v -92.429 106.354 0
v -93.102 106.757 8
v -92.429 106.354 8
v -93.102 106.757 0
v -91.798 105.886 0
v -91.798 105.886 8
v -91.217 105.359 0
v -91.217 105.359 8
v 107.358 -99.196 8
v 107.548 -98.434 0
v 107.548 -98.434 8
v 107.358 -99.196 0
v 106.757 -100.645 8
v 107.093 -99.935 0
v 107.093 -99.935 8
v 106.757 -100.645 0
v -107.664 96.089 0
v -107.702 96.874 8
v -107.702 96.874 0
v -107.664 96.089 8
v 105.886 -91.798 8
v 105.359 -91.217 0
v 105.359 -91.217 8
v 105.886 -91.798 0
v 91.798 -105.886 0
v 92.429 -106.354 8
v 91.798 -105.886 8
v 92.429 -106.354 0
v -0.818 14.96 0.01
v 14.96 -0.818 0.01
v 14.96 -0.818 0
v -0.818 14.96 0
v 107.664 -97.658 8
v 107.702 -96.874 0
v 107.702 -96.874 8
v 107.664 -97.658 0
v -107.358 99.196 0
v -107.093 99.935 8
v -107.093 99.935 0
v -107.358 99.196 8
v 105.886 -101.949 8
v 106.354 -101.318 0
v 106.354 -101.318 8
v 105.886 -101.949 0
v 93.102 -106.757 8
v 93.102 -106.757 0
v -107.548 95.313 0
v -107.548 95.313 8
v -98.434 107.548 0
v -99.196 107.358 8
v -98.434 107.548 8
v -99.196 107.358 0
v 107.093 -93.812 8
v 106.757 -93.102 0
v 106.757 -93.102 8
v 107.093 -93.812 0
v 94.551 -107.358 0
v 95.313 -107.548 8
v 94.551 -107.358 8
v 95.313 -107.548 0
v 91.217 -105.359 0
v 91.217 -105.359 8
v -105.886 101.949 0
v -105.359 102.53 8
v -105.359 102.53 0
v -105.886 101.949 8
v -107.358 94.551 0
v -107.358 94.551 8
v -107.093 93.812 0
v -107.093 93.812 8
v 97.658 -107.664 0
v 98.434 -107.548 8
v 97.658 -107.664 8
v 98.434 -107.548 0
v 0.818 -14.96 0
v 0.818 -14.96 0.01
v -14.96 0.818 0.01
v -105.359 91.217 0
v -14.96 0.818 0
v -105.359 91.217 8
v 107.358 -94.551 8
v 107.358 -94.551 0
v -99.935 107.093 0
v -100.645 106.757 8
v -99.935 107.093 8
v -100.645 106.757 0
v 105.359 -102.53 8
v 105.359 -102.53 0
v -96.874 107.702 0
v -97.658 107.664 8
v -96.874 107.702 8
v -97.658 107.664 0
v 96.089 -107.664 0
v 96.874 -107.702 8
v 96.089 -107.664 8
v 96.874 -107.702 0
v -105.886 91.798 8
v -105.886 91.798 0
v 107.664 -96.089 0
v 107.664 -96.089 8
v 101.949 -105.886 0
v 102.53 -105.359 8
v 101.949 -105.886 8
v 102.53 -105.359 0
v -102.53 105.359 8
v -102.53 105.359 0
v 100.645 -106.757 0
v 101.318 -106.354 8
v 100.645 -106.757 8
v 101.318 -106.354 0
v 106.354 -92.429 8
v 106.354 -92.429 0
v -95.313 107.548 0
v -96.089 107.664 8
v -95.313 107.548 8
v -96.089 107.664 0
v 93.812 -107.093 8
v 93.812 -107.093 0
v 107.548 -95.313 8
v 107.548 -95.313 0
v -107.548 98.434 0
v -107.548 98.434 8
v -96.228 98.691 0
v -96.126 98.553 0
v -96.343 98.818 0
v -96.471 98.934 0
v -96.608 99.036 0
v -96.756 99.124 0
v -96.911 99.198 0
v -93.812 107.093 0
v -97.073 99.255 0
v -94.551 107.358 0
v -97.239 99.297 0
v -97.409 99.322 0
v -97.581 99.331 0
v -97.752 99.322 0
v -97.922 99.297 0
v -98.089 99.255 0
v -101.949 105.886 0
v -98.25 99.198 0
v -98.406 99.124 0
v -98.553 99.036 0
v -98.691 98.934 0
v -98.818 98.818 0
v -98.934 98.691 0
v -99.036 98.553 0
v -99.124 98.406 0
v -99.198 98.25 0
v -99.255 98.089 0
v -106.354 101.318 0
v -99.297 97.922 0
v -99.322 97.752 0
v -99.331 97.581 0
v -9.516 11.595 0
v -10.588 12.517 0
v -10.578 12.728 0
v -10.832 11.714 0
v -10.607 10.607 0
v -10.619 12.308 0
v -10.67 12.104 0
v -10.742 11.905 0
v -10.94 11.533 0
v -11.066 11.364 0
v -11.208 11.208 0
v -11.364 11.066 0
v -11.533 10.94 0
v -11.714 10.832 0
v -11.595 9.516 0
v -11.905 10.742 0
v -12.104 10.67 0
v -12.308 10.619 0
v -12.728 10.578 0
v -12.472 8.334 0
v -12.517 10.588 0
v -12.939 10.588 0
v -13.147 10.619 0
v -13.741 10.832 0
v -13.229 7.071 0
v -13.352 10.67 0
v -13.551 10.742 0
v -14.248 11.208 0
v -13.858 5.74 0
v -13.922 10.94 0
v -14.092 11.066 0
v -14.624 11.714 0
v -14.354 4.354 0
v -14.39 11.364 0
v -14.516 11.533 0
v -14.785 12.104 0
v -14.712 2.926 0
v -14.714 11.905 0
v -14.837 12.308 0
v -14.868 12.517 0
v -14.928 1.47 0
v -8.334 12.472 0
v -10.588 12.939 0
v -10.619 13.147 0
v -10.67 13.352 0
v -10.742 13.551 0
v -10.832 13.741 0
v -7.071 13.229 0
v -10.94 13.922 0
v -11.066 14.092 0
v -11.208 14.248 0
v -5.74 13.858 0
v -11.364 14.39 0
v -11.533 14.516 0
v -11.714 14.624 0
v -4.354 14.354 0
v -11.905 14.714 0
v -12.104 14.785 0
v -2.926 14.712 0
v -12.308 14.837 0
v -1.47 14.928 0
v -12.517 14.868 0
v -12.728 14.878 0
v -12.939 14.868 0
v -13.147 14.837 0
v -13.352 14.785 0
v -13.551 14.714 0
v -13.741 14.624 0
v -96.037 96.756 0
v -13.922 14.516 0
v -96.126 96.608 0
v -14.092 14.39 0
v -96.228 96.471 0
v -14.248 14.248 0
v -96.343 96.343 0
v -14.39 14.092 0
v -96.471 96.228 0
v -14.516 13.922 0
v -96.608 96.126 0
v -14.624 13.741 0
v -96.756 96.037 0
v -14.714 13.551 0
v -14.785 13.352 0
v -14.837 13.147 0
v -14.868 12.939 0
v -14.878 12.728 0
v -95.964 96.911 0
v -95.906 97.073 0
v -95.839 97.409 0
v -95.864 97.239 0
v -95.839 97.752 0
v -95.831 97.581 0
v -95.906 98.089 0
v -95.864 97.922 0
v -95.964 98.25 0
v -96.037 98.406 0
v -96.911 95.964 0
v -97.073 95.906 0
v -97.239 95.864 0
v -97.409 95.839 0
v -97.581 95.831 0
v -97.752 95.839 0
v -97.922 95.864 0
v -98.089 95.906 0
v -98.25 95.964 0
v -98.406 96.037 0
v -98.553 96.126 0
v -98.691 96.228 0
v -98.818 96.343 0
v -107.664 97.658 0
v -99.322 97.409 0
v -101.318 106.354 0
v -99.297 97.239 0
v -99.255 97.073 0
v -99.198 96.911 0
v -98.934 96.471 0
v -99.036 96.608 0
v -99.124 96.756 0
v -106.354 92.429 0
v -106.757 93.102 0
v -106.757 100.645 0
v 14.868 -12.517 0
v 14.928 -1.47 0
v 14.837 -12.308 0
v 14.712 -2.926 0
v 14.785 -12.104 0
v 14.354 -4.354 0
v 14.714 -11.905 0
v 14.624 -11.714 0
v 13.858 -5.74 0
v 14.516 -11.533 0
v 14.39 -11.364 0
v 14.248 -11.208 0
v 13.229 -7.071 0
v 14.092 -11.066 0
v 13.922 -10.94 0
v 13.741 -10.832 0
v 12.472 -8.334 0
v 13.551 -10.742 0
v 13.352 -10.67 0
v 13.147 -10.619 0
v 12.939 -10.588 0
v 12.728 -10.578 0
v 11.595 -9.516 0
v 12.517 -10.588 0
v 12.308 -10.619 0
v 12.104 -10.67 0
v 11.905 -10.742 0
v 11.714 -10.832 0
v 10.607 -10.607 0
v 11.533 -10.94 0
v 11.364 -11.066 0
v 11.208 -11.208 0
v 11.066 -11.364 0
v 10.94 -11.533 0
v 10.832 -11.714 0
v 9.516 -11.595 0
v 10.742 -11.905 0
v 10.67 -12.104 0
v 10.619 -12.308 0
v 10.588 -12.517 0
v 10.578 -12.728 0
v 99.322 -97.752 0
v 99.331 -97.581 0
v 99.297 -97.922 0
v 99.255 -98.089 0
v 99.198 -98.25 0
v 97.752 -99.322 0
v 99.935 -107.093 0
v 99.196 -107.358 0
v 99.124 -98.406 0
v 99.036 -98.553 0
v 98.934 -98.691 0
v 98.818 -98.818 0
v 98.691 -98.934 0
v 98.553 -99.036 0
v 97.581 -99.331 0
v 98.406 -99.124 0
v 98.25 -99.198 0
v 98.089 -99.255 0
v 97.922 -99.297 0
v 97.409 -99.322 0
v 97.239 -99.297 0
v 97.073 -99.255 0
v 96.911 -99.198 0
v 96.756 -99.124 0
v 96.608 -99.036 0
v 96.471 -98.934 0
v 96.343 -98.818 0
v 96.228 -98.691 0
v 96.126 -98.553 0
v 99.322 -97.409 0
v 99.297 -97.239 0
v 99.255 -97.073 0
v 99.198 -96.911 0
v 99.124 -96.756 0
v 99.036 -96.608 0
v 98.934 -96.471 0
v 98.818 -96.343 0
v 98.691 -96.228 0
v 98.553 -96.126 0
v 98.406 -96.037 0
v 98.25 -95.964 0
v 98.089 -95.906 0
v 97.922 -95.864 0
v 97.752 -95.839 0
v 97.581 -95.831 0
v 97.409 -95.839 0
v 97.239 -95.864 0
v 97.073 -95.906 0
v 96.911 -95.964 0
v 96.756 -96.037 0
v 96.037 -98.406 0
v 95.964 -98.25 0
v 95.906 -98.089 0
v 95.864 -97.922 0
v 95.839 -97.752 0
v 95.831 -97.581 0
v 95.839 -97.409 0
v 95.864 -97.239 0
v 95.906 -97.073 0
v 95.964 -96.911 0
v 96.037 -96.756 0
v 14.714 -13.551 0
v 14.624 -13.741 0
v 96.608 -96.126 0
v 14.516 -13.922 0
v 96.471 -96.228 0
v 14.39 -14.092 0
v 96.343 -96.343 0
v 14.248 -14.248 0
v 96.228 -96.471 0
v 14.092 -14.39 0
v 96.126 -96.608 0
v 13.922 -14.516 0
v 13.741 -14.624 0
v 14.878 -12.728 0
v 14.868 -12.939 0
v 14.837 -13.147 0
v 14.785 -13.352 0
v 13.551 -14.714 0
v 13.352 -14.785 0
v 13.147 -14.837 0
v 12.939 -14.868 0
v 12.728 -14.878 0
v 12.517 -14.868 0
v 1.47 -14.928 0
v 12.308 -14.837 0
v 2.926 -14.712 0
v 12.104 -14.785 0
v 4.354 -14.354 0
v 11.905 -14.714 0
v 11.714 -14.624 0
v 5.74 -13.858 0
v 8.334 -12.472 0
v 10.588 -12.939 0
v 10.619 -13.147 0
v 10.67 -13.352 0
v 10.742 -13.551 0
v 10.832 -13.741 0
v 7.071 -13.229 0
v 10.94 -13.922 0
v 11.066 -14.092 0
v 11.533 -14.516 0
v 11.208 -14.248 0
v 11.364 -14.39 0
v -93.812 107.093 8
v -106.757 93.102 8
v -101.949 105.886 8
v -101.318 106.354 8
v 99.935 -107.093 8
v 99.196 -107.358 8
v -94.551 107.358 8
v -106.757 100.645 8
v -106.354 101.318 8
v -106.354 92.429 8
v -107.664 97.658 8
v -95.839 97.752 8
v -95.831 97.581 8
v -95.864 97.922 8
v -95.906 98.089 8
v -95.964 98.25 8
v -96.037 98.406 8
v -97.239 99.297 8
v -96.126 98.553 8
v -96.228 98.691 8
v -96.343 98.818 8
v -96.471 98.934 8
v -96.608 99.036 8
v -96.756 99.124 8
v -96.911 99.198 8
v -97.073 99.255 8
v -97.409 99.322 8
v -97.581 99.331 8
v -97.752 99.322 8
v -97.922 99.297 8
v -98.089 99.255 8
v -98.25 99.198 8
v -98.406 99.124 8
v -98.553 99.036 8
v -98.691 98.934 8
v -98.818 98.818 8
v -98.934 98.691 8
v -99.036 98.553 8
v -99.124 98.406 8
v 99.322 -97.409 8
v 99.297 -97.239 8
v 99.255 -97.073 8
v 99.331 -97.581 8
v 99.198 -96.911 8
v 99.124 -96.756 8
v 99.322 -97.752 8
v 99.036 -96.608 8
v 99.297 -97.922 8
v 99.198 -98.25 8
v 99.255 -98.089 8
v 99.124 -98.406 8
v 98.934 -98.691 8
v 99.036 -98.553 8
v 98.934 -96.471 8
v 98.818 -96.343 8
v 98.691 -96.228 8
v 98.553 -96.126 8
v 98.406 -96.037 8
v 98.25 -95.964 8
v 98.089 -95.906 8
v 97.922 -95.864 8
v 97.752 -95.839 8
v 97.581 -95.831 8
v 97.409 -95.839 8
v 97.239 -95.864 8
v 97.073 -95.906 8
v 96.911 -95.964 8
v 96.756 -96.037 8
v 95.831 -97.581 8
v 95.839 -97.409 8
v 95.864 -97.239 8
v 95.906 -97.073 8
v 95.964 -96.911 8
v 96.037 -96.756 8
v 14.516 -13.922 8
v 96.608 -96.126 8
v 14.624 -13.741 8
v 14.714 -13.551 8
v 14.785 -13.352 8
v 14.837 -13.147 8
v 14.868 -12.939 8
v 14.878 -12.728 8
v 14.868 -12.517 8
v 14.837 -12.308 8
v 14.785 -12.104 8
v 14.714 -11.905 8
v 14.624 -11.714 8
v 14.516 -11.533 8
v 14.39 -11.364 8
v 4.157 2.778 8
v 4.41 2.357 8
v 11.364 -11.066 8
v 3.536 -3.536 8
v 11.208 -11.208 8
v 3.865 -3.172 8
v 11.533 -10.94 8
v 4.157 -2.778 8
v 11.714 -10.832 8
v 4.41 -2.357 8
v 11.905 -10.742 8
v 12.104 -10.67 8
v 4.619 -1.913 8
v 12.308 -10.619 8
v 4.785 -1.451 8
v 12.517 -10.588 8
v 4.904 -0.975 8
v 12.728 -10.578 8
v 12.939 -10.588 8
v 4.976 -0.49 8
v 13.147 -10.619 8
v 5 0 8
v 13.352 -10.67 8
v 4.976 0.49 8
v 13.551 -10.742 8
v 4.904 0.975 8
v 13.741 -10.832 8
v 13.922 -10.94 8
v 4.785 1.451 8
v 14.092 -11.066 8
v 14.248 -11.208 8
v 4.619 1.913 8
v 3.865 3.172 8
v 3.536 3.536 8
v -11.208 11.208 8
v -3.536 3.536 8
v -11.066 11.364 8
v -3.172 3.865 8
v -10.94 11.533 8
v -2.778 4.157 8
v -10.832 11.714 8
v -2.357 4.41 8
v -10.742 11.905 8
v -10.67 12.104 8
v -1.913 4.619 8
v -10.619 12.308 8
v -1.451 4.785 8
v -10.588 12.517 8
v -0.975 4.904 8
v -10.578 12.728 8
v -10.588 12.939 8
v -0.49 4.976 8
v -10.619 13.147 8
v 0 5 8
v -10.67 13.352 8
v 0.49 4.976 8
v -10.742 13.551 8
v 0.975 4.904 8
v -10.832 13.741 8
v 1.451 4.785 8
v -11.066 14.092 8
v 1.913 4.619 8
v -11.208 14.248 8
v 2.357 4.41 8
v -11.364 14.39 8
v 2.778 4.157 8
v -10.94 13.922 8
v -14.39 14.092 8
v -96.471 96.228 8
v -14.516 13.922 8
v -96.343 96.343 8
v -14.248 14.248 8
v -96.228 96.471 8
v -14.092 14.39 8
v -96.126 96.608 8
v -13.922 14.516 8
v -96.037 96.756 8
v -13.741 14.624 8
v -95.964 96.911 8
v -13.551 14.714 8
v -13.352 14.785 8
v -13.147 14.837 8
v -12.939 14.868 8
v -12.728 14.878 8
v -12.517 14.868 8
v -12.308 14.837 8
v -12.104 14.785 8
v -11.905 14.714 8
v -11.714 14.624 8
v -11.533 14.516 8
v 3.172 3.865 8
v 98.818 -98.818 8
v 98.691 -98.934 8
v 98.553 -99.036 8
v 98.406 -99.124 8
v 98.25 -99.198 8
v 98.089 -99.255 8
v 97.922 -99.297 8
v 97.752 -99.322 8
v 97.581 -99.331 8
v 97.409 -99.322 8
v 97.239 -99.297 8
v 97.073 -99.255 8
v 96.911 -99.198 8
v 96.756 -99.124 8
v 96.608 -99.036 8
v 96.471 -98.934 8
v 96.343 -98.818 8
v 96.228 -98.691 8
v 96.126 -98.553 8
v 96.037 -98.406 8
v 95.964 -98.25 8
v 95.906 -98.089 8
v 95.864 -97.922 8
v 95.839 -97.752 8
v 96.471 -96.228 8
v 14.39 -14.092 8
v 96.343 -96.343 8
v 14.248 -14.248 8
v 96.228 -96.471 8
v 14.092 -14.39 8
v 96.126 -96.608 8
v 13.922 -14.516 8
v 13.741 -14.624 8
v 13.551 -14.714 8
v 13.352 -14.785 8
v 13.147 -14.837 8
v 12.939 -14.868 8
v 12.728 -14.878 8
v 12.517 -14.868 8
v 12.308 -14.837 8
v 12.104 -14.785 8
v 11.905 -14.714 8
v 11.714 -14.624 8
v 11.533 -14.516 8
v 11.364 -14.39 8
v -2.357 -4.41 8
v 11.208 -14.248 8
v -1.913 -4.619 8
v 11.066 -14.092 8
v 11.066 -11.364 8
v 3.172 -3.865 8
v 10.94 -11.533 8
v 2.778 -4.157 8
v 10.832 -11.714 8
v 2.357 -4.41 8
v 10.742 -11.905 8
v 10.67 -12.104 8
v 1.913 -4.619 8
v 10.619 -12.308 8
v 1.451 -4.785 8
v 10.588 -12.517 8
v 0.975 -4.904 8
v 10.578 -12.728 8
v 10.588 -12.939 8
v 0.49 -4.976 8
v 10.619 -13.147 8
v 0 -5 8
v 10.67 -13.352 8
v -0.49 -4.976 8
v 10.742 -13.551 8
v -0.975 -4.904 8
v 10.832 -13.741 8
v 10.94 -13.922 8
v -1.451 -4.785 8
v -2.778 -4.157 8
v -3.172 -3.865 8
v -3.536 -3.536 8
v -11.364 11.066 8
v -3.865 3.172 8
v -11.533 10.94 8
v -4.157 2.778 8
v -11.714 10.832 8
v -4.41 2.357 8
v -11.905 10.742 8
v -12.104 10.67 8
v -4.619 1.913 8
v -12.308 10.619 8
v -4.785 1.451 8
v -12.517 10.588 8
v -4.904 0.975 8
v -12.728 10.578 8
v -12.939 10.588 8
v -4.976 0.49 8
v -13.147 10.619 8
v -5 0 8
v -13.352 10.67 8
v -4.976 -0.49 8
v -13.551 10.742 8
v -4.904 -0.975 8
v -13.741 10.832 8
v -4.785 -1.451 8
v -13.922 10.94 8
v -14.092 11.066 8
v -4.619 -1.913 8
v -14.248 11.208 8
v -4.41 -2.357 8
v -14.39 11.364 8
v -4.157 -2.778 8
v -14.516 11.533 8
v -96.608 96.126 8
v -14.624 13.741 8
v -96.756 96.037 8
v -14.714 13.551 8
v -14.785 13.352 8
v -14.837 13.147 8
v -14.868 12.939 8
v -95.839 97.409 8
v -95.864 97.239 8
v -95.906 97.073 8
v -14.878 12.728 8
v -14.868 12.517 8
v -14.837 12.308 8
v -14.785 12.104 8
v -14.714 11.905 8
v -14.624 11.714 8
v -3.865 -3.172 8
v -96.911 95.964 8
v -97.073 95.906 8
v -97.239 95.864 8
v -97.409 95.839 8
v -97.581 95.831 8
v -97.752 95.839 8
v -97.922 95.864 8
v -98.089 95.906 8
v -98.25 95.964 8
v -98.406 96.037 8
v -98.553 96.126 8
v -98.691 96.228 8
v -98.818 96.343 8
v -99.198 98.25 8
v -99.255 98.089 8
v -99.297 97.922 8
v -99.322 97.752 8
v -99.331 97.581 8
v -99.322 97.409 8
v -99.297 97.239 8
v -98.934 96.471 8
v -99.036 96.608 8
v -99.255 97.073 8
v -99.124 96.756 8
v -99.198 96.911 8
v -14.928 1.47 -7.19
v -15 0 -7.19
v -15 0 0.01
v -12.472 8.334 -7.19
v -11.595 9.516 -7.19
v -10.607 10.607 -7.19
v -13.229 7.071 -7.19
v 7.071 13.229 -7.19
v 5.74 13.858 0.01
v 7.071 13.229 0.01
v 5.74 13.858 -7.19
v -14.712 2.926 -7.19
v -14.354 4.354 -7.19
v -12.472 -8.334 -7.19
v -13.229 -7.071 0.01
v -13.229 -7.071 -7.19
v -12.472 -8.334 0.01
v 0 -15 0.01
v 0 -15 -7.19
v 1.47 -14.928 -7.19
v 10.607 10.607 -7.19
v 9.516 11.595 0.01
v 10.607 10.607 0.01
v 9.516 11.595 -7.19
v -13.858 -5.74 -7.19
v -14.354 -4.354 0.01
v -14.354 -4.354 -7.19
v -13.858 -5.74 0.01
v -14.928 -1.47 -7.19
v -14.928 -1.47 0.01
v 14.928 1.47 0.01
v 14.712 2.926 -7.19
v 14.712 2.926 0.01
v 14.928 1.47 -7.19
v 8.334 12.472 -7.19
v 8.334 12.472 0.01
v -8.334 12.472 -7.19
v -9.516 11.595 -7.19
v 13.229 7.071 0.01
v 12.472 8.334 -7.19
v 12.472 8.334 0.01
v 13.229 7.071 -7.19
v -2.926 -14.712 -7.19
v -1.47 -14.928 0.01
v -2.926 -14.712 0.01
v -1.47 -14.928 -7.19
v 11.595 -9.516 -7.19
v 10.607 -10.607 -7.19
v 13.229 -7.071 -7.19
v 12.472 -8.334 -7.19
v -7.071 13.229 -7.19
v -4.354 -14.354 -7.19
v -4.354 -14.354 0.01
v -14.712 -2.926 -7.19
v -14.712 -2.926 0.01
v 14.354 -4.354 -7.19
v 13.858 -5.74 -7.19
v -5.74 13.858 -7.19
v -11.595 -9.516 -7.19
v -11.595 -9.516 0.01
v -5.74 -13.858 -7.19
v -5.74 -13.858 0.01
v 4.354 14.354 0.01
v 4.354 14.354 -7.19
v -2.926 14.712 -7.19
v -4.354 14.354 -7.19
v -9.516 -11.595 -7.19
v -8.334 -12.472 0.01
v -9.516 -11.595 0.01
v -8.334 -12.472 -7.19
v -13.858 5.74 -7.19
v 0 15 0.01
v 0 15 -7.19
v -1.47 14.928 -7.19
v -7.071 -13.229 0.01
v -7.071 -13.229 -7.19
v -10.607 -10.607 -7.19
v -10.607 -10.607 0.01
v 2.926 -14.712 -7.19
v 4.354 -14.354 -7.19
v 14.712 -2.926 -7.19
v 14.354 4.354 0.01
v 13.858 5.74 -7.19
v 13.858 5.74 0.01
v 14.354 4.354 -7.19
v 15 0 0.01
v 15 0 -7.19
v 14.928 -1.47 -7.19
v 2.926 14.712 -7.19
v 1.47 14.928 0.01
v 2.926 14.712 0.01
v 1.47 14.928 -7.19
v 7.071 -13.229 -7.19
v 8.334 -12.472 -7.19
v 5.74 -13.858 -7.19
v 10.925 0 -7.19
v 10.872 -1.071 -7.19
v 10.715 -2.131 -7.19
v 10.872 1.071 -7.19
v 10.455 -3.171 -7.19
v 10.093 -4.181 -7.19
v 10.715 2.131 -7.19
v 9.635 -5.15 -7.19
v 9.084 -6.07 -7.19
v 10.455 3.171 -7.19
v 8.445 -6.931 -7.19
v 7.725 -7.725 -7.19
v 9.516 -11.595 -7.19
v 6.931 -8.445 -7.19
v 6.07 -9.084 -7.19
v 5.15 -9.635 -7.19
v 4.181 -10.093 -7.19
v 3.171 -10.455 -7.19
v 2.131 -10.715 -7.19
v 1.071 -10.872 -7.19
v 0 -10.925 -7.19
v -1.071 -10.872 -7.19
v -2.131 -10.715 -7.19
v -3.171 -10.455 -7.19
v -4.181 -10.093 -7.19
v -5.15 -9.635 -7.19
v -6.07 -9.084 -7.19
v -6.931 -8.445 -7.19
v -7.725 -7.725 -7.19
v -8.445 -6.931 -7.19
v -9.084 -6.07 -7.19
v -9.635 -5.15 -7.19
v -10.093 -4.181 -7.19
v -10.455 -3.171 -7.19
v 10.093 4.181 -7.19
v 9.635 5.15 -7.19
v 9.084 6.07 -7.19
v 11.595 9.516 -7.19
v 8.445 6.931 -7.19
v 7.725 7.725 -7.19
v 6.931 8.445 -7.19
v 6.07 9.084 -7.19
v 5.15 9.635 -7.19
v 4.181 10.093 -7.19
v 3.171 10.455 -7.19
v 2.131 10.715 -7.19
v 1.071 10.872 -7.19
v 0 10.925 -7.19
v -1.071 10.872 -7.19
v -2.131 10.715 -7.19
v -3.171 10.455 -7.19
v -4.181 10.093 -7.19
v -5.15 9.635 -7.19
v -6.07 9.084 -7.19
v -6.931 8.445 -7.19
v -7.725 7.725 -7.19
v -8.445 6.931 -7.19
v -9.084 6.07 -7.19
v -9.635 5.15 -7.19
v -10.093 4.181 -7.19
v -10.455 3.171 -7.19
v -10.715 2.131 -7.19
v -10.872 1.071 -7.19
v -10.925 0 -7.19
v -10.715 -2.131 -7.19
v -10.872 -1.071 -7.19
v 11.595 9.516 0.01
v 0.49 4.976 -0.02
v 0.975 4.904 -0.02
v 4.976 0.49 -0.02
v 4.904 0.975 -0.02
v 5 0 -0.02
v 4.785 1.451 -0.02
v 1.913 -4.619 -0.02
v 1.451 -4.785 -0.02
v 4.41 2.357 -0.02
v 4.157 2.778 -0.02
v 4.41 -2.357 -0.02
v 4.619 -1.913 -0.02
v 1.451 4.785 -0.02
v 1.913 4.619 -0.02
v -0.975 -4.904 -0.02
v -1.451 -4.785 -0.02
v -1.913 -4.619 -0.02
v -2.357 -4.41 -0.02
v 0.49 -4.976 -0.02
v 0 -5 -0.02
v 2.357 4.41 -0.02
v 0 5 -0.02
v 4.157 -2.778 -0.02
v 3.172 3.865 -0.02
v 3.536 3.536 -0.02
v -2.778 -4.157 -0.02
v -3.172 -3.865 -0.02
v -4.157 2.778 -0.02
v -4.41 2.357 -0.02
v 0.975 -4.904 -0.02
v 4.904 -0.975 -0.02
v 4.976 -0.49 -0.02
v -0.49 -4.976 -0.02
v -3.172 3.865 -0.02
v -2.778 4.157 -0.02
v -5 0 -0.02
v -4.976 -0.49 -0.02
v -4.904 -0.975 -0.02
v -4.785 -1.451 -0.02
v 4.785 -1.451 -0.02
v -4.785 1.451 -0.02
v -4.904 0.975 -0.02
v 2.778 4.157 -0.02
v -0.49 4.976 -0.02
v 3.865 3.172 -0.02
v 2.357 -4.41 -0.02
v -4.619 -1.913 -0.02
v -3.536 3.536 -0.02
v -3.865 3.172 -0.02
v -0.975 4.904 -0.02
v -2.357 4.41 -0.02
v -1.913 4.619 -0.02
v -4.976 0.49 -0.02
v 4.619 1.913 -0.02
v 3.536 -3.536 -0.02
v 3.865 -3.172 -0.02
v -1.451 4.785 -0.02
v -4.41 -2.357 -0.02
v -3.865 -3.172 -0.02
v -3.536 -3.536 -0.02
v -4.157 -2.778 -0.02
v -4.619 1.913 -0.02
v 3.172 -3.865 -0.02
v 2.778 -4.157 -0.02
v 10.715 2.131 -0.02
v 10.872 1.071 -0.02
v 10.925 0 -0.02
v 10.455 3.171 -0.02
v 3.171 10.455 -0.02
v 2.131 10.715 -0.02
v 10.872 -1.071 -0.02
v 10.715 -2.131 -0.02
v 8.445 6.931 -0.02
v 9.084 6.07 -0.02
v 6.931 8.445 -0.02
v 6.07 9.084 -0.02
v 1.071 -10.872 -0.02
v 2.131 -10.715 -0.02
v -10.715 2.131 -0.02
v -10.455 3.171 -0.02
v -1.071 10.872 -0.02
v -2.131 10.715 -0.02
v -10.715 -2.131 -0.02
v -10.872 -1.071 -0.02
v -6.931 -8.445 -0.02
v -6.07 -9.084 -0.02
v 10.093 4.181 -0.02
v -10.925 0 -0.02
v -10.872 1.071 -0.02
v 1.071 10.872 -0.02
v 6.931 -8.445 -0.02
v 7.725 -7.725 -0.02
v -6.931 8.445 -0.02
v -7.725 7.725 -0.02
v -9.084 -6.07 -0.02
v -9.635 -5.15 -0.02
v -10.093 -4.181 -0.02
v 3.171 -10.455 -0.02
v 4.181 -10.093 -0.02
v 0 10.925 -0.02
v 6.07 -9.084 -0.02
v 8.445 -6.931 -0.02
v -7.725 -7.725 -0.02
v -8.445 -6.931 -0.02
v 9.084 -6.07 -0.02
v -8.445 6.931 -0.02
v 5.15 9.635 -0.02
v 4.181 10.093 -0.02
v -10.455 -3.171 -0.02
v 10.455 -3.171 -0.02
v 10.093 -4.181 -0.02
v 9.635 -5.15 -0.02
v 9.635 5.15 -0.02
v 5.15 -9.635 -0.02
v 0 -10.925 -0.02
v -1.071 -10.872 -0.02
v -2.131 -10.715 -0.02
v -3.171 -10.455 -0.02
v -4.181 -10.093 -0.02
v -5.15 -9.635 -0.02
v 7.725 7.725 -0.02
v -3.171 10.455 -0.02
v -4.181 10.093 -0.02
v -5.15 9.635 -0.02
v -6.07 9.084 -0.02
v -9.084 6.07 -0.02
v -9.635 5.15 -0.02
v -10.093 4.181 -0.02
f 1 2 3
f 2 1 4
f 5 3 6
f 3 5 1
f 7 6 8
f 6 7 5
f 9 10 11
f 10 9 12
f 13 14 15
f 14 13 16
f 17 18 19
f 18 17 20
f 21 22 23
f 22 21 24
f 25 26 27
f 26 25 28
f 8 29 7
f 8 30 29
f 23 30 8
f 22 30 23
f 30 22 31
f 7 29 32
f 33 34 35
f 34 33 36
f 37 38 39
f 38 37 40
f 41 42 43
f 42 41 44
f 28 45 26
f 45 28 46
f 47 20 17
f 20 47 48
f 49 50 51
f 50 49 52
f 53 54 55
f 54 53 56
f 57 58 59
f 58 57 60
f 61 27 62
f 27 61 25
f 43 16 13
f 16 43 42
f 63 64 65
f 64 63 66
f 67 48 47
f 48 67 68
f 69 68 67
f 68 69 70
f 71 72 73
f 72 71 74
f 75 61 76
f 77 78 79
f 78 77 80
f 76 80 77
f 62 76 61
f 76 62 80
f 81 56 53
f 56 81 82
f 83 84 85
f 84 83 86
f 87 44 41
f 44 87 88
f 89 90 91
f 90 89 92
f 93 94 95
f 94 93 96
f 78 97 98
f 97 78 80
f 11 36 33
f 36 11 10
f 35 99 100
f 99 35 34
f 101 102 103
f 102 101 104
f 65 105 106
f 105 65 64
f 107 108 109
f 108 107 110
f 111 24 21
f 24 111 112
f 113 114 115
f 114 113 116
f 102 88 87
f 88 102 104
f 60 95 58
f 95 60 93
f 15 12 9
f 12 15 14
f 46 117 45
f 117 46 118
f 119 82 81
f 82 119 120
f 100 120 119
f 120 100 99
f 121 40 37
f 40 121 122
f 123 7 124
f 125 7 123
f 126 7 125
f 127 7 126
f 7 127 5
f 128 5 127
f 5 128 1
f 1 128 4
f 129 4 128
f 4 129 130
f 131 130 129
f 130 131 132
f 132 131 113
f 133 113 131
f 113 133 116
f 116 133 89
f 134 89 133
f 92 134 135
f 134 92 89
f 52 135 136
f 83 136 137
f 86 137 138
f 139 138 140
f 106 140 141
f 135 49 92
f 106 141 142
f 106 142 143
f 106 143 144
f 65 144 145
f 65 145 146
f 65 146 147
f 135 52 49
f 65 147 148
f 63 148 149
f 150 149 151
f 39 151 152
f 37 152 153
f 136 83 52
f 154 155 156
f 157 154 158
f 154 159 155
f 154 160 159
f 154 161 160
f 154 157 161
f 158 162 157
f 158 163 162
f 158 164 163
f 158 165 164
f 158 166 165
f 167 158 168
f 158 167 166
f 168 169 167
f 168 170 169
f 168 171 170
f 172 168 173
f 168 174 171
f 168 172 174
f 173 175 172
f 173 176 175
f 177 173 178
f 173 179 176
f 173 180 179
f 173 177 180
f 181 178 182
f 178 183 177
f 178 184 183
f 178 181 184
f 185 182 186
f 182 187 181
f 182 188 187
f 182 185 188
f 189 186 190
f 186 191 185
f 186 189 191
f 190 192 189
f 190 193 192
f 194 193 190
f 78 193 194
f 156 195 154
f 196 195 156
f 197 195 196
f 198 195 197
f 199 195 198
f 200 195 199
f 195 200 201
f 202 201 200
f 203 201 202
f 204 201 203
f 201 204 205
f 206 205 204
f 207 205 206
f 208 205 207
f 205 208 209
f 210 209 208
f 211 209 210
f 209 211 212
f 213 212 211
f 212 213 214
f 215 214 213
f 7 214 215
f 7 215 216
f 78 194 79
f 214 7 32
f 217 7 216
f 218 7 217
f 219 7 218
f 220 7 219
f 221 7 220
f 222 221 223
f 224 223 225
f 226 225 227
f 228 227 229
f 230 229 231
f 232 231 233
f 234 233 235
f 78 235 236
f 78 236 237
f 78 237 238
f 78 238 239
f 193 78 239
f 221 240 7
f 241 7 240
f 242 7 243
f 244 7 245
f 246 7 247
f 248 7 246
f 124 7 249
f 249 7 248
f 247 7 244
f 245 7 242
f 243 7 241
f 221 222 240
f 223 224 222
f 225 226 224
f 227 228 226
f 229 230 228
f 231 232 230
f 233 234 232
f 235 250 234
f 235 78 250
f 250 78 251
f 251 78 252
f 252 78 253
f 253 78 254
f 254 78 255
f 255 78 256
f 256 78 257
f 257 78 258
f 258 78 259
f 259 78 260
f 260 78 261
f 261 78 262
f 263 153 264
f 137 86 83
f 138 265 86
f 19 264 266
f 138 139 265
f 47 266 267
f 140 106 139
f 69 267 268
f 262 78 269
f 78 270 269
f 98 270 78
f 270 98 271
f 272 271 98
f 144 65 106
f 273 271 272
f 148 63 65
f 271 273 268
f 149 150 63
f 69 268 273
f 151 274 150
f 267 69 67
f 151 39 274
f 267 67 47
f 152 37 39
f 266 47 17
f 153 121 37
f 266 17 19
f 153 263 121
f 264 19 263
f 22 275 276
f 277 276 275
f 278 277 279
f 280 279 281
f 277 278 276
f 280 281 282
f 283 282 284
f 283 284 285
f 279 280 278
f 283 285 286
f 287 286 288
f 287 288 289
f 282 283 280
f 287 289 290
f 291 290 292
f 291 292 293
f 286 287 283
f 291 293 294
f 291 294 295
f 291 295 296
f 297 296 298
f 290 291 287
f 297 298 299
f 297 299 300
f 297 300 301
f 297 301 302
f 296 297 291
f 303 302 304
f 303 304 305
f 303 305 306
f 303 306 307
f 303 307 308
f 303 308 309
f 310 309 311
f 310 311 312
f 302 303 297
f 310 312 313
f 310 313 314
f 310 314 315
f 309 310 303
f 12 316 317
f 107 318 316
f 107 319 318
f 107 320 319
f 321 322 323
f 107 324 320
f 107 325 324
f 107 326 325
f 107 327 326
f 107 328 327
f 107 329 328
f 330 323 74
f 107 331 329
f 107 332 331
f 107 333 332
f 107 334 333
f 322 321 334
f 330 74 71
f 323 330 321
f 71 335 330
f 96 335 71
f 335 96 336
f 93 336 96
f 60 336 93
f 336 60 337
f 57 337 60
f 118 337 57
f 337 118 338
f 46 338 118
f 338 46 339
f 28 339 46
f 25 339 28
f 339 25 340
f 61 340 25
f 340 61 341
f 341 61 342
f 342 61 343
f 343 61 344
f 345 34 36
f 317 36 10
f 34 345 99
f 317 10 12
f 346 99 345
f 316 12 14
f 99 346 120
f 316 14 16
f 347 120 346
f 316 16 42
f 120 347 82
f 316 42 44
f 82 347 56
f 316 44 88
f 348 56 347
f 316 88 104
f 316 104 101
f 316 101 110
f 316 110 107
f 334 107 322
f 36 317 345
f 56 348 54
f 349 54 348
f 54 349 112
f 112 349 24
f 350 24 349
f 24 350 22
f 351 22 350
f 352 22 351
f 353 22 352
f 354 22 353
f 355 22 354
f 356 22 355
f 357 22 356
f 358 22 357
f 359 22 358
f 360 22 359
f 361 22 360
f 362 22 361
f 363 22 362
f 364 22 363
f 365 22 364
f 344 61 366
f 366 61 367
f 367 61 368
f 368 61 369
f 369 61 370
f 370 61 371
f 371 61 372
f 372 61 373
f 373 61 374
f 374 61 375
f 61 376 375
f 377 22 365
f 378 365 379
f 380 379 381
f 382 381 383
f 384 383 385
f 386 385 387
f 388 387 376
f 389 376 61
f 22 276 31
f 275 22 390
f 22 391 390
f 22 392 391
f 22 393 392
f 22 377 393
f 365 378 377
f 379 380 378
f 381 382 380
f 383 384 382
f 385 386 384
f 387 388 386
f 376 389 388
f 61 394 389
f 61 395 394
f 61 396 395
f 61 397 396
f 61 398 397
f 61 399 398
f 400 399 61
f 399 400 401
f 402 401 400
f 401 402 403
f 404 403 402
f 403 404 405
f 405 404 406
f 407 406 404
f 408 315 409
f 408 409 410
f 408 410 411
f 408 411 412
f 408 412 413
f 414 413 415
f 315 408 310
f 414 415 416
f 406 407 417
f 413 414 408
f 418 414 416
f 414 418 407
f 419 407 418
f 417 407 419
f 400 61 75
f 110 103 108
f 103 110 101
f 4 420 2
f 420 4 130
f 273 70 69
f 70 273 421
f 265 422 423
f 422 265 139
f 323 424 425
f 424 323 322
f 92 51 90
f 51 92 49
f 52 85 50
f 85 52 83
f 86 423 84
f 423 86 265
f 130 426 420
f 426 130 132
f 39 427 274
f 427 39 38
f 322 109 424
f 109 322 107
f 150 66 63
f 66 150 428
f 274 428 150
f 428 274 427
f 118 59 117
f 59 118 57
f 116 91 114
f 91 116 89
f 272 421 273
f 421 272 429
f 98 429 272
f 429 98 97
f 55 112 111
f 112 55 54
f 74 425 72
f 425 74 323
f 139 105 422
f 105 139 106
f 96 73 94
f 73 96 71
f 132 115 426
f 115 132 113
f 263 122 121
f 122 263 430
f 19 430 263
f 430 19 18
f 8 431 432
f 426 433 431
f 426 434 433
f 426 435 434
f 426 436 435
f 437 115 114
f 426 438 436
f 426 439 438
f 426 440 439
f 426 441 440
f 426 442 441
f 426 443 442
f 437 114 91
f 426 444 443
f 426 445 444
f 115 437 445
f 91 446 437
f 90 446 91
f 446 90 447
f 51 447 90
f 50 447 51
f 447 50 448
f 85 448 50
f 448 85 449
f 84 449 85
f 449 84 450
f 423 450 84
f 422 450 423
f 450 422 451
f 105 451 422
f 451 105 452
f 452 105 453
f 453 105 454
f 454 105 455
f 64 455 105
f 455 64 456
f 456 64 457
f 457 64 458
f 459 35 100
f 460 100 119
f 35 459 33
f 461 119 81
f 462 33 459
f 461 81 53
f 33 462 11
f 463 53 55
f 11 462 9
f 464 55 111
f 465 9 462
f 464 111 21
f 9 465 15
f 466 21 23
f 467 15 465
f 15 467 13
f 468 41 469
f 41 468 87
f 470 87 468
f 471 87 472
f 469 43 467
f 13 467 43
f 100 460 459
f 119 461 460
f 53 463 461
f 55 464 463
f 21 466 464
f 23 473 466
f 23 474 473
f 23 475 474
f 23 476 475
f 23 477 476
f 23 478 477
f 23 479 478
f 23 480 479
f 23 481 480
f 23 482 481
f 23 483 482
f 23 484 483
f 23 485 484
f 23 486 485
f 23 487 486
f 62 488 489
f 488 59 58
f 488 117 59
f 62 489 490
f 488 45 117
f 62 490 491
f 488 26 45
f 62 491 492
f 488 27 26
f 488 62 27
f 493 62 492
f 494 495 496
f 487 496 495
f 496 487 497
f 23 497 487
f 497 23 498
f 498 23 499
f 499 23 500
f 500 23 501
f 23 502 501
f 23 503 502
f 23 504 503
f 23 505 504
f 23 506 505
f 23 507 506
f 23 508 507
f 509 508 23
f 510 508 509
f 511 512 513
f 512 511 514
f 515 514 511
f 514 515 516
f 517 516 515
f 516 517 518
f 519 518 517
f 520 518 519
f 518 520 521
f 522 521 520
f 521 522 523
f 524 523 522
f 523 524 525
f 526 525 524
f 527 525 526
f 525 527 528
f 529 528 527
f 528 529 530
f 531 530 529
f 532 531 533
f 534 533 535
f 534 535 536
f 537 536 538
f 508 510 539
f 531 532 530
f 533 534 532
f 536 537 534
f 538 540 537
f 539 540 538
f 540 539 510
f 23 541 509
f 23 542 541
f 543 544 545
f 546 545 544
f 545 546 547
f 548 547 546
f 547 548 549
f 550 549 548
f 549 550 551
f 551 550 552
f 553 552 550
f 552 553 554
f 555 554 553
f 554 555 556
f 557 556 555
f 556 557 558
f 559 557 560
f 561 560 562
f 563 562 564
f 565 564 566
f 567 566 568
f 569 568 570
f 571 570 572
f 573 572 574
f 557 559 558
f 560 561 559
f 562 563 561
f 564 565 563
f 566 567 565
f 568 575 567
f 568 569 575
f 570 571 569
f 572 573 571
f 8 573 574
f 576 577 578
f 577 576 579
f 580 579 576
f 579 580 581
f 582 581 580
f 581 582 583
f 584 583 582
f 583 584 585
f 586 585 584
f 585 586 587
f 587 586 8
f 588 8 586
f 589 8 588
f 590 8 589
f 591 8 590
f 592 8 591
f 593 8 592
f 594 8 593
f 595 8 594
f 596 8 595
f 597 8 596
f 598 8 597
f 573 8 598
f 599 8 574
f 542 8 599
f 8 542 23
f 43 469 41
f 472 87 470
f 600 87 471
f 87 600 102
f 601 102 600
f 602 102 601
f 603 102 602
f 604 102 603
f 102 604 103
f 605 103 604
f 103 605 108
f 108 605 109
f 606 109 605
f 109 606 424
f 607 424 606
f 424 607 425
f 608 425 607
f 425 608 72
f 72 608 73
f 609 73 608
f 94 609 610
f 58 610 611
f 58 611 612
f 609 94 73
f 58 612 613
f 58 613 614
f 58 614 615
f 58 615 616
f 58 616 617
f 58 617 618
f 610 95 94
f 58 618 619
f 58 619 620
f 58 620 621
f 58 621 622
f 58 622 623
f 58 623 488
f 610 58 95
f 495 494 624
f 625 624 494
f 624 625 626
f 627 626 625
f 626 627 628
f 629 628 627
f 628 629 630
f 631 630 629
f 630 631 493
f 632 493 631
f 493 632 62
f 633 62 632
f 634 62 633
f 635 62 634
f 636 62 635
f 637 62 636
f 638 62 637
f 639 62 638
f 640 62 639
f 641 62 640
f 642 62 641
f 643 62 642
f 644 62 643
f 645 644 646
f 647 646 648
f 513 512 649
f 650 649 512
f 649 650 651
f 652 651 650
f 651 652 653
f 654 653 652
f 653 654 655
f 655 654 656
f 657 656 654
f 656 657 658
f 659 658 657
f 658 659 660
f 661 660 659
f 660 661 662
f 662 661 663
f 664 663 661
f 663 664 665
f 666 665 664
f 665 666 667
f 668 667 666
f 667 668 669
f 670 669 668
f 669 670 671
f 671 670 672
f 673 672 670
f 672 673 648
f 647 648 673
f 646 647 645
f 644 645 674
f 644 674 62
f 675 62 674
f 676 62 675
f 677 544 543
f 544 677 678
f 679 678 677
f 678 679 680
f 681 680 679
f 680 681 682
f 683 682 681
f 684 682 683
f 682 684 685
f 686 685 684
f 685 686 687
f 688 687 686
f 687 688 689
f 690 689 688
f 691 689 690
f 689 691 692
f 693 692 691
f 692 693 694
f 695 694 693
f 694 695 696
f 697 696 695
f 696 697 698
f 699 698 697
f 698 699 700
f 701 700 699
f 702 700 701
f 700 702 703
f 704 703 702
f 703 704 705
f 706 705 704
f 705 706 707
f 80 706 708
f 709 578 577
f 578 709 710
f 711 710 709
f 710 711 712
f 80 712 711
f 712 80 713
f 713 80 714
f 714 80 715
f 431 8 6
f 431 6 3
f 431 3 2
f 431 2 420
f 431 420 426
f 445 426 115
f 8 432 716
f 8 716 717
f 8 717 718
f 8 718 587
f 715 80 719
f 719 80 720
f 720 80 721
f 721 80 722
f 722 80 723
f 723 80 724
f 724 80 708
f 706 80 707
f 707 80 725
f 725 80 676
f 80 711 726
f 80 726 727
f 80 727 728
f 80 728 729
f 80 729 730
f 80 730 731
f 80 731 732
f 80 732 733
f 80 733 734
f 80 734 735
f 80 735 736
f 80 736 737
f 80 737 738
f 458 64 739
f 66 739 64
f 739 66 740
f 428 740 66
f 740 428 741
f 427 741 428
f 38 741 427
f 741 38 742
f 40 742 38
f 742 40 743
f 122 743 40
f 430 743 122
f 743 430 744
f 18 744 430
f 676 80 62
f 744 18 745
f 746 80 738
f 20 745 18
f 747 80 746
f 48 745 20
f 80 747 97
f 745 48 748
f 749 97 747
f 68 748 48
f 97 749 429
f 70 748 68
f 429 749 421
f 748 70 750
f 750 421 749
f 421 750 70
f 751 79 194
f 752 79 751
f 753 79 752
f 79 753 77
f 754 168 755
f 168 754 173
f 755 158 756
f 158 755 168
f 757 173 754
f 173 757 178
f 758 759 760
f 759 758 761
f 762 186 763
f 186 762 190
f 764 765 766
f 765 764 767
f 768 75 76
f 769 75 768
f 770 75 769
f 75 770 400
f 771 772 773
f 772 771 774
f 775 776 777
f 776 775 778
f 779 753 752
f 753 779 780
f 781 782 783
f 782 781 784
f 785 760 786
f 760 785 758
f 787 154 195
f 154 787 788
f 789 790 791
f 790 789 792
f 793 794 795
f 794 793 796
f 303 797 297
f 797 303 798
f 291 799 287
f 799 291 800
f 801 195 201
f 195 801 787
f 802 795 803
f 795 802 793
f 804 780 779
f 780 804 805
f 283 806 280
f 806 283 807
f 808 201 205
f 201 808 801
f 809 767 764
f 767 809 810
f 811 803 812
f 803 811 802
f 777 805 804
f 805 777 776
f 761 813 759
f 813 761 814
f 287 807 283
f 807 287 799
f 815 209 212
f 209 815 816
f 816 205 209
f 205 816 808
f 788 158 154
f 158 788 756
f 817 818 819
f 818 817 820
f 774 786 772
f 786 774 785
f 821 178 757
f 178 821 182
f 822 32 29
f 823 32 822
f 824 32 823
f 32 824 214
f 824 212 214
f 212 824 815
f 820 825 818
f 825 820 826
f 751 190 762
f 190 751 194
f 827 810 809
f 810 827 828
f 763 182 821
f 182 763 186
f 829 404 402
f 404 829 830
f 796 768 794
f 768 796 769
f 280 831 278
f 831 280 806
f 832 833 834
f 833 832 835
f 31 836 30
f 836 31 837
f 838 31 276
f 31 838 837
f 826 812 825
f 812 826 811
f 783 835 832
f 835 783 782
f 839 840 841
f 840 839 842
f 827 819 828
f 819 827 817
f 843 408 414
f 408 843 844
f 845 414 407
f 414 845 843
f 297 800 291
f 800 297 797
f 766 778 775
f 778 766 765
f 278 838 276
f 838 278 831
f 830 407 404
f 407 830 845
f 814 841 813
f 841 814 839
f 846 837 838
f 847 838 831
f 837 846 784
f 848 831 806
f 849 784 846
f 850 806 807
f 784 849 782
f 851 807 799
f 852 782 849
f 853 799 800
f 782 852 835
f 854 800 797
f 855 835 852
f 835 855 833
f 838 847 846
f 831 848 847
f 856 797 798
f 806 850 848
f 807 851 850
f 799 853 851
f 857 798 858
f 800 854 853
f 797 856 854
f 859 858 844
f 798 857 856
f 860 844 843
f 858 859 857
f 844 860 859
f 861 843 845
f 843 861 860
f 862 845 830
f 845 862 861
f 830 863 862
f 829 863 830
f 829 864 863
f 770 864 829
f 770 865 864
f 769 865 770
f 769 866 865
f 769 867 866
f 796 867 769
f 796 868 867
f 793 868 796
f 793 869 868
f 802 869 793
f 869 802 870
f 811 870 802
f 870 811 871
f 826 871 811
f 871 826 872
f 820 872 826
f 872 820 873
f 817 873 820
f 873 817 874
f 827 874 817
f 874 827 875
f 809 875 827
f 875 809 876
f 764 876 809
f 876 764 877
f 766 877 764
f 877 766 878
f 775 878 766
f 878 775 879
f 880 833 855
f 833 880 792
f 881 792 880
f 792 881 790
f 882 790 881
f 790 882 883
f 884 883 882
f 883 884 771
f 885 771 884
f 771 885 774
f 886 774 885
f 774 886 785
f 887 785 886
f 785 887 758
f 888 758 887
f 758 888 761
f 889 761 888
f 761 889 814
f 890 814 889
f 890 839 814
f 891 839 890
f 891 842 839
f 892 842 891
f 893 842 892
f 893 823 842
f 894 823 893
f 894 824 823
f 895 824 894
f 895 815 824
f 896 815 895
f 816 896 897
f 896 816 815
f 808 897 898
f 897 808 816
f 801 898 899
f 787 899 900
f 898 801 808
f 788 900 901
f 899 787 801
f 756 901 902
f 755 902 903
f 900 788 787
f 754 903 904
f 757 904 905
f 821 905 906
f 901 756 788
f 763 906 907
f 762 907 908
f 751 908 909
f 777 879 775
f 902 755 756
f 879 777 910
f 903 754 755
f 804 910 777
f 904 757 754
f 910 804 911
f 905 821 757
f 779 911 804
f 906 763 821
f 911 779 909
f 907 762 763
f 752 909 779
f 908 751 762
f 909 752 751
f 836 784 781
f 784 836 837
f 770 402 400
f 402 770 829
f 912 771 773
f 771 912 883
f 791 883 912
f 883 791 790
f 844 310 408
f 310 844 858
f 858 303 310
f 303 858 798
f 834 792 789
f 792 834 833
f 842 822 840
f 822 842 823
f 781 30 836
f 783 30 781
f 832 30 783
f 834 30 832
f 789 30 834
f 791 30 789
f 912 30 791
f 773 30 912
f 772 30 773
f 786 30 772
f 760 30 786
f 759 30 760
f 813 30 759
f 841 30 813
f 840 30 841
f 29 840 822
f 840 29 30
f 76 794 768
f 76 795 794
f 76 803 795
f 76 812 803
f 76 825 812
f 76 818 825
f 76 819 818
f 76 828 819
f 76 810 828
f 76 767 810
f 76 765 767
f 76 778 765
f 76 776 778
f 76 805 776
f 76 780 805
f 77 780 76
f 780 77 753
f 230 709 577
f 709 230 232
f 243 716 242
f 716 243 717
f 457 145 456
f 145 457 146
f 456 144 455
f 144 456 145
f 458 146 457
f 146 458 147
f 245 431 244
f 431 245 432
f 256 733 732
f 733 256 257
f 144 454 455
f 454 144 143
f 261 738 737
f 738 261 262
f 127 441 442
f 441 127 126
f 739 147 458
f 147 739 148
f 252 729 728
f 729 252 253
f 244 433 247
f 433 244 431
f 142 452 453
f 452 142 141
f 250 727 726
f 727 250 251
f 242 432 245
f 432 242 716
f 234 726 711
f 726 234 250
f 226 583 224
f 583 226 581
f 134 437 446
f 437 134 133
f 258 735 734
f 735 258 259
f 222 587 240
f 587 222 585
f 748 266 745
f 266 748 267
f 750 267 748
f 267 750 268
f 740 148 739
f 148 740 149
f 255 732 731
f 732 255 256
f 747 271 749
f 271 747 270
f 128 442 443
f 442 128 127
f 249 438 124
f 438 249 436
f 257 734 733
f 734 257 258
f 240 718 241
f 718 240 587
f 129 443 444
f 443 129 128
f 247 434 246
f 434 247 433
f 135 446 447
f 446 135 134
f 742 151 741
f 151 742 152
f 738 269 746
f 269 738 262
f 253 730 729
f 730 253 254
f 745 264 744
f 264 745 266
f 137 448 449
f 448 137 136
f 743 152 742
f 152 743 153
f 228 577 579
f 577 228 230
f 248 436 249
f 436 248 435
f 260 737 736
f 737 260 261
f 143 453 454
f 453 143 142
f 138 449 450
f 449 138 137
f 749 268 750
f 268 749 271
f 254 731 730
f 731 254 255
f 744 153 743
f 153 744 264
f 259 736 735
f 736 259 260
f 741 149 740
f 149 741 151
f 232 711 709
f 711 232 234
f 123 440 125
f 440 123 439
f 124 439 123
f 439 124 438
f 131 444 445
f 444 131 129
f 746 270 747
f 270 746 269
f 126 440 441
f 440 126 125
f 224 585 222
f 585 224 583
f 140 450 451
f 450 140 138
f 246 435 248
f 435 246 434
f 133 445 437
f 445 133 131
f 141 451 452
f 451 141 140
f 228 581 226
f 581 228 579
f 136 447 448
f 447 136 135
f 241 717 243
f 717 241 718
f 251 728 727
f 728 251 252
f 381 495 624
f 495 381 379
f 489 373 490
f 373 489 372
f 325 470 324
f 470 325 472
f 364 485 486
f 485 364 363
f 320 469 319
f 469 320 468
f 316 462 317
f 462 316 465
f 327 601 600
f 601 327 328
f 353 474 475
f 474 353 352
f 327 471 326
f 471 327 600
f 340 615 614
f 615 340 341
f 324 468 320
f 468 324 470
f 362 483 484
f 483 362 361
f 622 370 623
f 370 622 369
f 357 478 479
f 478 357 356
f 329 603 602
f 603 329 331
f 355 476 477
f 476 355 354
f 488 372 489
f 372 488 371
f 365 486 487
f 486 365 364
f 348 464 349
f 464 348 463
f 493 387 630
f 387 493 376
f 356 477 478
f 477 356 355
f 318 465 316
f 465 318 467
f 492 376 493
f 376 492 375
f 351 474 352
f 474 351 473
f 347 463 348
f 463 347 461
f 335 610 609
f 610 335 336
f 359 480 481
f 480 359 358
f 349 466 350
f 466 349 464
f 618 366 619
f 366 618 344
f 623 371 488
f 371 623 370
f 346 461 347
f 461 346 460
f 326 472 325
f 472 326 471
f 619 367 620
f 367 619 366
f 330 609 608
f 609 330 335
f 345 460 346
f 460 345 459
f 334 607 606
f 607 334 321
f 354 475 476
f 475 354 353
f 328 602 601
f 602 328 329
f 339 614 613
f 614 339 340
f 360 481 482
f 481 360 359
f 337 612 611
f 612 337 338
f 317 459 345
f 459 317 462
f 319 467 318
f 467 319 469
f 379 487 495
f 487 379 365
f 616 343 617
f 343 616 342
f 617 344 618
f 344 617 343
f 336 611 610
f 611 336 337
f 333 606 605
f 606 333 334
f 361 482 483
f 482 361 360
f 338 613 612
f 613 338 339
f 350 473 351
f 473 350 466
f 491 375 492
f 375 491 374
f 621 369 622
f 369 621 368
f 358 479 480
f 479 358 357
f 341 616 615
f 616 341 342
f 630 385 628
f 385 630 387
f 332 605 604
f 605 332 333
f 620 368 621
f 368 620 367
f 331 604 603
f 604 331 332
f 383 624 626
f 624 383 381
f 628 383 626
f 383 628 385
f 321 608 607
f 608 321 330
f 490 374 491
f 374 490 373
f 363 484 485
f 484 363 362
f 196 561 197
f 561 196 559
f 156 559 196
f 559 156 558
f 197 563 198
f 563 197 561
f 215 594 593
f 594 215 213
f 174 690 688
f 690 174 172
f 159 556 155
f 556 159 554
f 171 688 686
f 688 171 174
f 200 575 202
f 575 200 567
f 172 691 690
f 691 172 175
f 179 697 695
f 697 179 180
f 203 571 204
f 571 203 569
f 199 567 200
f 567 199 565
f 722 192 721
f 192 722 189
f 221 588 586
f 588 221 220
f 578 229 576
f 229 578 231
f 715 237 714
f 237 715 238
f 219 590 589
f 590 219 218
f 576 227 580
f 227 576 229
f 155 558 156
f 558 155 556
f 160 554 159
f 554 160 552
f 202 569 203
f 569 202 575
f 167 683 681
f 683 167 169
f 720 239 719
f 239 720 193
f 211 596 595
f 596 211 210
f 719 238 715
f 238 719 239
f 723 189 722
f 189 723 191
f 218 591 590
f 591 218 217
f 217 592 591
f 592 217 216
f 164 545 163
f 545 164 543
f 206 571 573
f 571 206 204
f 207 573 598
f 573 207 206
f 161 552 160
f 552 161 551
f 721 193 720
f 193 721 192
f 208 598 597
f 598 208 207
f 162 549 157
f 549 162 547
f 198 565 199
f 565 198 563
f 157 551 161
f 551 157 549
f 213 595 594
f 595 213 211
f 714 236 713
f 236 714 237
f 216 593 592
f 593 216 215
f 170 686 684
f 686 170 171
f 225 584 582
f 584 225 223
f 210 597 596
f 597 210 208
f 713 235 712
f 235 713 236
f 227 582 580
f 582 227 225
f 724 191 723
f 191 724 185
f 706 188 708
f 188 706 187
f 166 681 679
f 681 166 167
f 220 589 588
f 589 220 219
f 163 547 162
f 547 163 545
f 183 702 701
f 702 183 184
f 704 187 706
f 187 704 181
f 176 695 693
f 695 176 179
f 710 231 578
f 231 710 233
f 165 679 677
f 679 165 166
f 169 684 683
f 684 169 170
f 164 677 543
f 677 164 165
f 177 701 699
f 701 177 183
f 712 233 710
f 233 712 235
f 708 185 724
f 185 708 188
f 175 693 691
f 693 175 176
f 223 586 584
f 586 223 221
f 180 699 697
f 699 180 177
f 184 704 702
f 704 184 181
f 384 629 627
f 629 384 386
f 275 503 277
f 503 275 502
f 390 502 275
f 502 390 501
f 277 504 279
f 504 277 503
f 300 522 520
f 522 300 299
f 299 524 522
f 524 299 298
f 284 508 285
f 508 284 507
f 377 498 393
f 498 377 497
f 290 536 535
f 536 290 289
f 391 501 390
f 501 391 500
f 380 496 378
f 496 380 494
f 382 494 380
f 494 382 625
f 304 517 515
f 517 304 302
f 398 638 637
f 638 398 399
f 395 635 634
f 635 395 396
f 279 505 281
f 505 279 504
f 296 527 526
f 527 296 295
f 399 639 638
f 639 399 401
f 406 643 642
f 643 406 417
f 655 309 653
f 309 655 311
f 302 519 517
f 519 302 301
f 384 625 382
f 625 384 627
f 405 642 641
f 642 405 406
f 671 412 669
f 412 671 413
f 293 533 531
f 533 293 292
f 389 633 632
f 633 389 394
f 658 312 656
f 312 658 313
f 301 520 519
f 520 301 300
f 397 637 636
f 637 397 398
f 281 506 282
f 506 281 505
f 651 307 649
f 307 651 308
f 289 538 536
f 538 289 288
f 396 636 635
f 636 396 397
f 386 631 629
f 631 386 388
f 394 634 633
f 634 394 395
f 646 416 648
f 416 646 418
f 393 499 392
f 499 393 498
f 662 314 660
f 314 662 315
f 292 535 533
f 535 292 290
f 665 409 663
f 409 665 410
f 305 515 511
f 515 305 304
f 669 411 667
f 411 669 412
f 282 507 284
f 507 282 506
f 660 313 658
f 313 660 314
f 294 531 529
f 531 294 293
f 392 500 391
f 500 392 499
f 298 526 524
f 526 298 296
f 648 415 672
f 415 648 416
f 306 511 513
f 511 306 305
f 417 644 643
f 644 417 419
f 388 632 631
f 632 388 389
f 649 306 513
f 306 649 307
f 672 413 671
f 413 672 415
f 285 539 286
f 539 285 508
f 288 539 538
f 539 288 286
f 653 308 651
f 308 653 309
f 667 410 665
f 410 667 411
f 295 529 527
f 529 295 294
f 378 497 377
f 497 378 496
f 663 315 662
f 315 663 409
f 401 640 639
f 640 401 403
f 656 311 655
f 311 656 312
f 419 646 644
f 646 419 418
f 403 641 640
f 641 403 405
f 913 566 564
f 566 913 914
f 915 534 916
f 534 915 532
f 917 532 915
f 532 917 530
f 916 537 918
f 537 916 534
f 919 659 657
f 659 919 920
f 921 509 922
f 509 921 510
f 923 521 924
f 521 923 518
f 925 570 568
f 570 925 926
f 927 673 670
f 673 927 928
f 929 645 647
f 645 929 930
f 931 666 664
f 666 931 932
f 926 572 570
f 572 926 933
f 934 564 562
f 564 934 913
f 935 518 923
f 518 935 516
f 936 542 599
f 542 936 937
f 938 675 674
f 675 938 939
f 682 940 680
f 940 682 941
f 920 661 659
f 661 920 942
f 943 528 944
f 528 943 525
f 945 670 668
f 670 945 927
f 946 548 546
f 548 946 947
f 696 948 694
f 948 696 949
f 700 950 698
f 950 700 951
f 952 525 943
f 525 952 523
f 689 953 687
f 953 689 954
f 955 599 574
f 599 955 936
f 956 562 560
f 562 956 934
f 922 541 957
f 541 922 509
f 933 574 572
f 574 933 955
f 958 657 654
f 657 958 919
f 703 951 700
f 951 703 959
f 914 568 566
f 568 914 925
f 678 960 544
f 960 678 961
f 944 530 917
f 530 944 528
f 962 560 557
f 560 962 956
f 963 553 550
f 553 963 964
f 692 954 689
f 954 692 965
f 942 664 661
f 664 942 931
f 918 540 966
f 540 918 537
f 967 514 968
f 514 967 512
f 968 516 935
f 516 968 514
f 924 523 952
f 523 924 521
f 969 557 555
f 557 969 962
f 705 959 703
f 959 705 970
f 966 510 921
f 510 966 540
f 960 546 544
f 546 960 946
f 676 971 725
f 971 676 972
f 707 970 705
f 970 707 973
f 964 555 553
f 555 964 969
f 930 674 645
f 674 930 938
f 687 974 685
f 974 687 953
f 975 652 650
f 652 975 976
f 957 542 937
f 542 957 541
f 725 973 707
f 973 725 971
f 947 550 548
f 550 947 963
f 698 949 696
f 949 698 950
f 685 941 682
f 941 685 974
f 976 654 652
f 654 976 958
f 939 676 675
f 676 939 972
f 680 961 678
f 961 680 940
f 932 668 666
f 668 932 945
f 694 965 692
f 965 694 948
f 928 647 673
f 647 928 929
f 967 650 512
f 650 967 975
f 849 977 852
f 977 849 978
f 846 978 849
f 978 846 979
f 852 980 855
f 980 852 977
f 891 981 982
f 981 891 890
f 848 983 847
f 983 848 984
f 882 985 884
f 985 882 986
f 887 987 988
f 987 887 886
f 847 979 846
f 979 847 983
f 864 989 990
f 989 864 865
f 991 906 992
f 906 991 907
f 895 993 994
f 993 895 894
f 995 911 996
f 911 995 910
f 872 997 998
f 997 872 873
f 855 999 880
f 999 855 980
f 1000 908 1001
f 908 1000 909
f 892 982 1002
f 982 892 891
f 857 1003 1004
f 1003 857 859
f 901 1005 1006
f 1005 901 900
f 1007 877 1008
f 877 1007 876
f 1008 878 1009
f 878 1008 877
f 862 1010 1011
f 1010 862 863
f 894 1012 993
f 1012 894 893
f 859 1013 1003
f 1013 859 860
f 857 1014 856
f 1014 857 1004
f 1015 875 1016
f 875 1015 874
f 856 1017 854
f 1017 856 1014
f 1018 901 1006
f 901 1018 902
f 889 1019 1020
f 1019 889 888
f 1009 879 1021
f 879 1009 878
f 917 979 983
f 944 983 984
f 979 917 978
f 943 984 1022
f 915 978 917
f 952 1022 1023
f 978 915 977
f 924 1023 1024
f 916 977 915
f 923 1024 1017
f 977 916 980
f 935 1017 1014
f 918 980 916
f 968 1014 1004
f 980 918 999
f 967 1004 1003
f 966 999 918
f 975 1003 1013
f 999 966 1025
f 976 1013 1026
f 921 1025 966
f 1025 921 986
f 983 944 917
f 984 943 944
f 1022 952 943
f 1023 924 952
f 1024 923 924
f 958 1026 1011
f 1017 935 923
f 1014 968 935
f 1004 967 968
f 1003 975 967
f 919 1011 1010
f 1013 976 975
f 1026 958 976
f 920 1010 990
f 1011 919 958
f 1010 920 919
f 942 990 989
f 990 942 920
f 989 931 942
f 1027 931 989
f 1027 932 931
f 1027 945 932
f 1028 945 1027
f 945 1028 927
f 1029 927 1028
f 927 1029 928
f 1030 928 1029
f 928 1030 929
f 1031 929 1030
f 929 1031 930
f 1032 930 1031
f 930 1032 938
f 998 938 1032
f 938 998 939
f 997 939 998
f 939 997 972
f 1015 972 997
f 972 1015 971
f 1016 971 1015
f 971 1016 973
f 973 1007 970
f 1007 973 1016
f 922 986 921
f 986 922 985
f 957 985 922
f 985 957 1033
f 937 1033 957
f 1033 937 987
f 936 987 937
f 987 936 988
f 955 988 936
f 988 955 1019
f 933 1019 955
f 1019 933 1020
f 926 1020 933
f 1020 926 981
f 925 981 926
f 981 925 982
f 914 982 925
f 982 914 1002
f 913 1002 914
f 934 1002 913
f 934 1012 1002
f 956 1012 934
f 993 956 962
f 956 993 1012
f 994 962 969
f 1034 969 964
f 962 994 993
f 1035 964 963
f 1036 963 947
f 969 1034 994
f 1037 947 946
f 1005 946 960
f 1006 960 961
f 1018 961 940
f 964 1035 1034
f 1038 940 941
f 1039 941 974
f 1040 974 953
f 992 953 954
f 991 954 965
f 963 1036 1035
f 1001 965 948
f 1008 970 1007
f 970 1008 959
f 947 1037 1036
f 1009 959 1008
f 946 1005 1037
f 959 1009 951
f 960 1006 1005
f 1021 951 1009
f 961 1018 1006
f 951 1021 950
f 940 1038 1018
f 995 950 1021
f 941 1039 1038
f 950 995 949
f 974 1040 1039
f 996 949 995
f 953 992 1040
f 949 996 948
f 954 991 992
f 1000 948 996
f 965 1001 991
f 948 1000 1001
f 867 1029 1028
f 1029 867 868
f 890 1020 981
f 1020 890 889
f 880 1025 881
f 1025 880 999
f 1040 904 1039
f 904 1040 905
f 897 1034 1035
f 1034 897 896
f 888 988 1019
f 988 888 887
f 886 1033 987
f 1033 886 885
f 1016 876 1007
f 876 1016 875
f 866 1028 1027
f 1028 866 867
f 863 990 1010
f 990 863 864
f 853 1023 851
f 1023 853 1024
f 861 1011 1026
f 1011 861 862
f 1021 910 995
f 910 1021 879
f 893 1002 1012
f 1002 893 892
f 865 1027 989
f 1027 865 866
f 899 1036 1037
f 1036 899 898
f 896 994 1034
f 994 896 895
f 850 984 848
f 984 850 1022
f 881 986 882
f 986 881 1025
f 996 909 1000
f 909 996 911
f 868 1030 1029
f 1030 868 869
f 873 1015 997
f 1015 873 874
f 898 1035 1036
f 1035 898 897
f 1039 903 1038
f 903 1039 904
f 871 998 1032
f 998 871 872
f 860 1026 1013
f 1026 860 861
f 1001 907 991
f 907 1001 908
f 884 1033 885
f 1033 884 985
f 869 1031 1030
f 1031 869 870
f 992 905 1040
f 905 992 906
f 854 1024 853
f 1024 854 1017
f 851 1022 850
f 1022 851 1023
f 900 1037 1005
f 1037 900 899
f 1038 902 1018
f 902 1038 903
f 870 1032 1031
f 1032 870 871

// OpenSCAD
// Gen-DG — rear BEARING BRIDGE (bar endbell, 2026-10-10): a 608 boss on a 20 mm wide bar that spans the
// two frame rods at 135 deg and 135+180 deg (R = flange_bolt_r). The front bridge uses the rods at 45/225 deg, the rear
// bridge the rods at 135/315 deg, so the two bridges cross at 90 deg and the stator is held at 4 points.
// A bar instead of a full disc is what lets this big-ring kit fit ONE 410 mm plate. Print flat face DOWN (boss up, no supports).
// Brace holes (temporary M4 jack rods, R = brace_r) sit on the bar axis.
include <parameters.scad>;
$fn = 64;
bar_w = 20;
bar_len = 2 * (flange_bolt_r + 9);
module bar_2d() { offset(r=8) offset(delta=-8) square([bar_len, bar_w], center=true); }
difference() {
    rotate([0, 0, 135]) union() {
        linear_extrude(endbell_thick) bar_2d();
        translate([0, 0, -bearing_h + 0.01]) cylinder(d=30, h=bearing_h);
    }
    translate([0, 0, -bearing_h - 0.1]) cylinder(d=endbell_shaft_clear, h=50);
    translate([0, 0, -bearing_h - 0.02]) cylinder(d=bearing_d, h=bearing_h);
    for (s = [0, 180]) rotate([0, 0, 135 + s]) translate([flange_bolt_r, 0, -20]) cylinder(d=m3_clear, h=60);
    for (a = brace_angles) translate([brace_r*cos(a), brace_r*sin(a), -20]) cylinder(d=brace_d, h=50);
}
